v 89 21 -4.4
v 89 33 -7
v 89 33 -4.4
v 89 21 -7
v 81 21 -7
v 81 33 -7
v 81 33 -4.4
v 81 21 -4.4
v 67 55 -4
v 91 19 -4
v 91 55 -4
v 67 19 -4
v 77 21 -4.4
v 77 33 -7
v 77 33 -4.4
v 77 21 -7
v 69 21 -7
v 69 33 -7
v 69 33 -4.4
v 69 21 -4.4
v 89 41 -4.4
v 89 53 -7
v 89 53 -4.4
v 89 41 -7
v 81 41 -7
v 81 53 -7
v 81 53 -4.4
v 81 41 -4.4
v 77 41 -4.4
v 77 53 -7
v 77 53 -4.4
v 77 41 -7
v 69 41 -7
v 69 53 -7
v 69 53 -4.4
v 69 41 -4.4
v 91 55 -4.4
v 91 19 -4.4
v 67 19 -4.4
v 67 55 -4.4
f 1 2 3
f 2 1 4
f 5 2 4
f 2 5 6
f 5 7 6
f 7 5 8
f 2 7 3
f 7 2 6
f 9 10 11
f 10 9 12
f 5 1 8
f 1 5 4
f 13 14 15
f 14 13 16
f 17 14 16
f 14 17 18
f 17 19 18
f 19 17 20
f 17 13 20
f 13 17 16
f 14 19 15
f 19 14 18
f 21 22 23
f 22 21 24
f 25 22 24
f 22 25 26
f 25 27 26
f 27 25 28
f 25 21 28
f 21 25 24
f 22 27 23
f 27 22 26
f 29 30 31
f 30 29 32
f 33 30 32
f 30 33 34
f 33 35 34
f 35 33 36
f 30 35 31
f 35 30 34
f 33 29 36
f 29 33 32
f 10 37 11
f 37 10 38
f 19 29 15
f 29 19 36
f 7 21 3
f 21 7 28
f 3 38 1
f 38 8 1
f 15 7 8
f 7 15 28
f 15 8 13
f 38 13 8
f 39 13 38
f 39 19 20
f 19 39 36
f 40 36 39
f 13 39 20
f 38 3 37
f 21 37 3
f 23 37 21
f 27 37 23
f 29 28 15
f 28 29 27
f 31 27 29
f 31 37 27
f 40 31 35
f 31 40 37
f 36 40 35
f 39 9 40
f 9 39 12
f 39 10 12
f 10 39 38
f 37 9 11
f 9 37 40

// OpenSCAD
// file: controller.scad
use <util.scad>;

module switches() {
	  translate([2.5*5,2.5,0])  switch();
		translate([2.5,2.5*5,0])  switch();
		translate([2.5*5,2.5*9,0])  switch();
		translate([2.5*9,2.5*5,0])  switch();
		
		translate([2.5*12,2.5,0])  switch();
		translate([2.5*12,2.5*9,0])  switch();
}

module controller() {
	
	// 59mm across
	// 35.6 long
	
	// 2.5 between buttons
	
	x  = 40;
	y = 62;
	z = 1.60;
	translate([0, 0, -z]) {
			color("green") linear_extrude(height=z)
				difference() {
					hull() {
						translate([  3,   3]) circle(r=3);
						translate([x-3,   3]) circle(r=3);
						translate([x-3, y-3]) circle(r=3);
						translate([  3, y-3]) circle(r=3);
					}
				}
		}
	   switches();
		
		translate([0,2.5*12,0])
			switches();
		
}

module back_controller() {
	x  = 40;
	y = 62;
	z = 1.60;
	translate([0, 0, -z]) {
		color("green") linear_extrude(height=z)
			difference() {
				hull() {
					translate([  3,   3]) circle(r=3);
					translate([x-3,   3]) circle(r=3);
					translate([x-3, y-3]) circle(r=3);
					translate([  3, y-3]) circle(r=3);
				}
			}
		rotate([0,180,0]) translate([-2.5*5,2.5*7,0])  switch();
		rotate([0,180,0]) translate([-2.5*10,2.5*7,0])  switch();

		rotate([0,180,0]) translate([-2.5*5,2.5*15,0])  switch();
		rotate([0,180,0]) translate([-2.5*10,2.5*15,0])  switch();
	}

}
// file: pitft.scad
use <util.scad>;

width=56;
length=65;
pcb_height=1.65;

module tiny_switch() {
	   color("grey")
		cube([6,3.4,3.63]);
	translate([3,1.6,4.13])
	color("white")
		cube([3,1.5,1], center=true);
}

module pitft_holes() {
	$fn=32;
	translate([3.5,3.5]) circle(d=2.75);
	translate([width - 3.5,3.5]) circle(d=2.75);
	translate([3.5,length - 3.5]) circle(d=2.75);
	translate([width - 3.5,length - 3.5]) circle(d=2.75);
}

module pitft() {
	color("blue")
		translate([0, 0, -pcb_height]) 
		linear_extrude(pcb_height)
		difference() {
			hull() {
				translate([  3,   3]) circle(r=3);
				translate([width-3,   3]) circle(r=3);
				translate([  3, length-3]) circle(r=3);
				translate([width-3, length-3]) circle(r=3);
			}
			pitft_holes();

			// cutout for 26 pin GPIO
			translate([9.25,-1])
				square([38,12.5]);
			
		}
		
		
	  translate([55,10,0])
		rotate(90)
		tiny_switch();
	  
	  translate([55,20,0])
		rotate(90)
		tiny_switch();    
		 translate([55,30,0])
		rotate(90)
		tiny_switch();    
		 translate([55,40,0])
		rotate(90)
		tiny_switch();    
		 translate([55,50,0])
		rotate(90)
		tiny_switch();    
	  
	color("black")
		translate([6.0, 7.1, -pcb_height])
		rotate([0,180,0])
		cube([5, 51.2, 8.6]);
		
	 translate([12.0, 14, -2])
		rotate([0,90,270])
		header(2, 13);
		
	 color("white")
		translate([7,5,0])
		cube([42.5,60,2.75]);
	 color("black")
		translate([8,6,2.75])
		cube([40,51,0.5]);
}


pitft();
// file: pi.scad
use <util.scad>;

width=56;
length=65;
pcb_height=1.5;

module pi_holes() {
	$fn=32;
	translate([3.5,3.5]) circle(d=2.75);
	translate([width - 3.5,3.5]) circle(d=2.75);
	translate([3.5,length - 3.5]) circle(d=2.75);
	translate([width - 3.5,length - 3.5]) circle(d=2.75);
}

module pi_3_a_plus() {
    $fn=32;

    color("green")
		translate([0, 0, -pcb_height]) 
		linear_extrude(pcb_height)
		difference() {
			hull() {
				translate([  3,   3]) circle(r=3);
				translate([width-3,   3]) circle(r=3);
				translate([  3, length-3]) circle(r=3);
				translate([width-3, length-3]) circle(r=3);
			}
			pi_holes();
		}

    translate([1.0, 7.25, 0]) header(2, 20);
    translate([width,7.25,0]) rotate(90) micro_usb();
    // translate([22,length - (15 - 2.6),-2]) sdcard();
    // translate([21.5,length - (15 - 2.6),-2.5]) sdcard_reader();
    // translate([18,-2.5,0]) usb();

 		translate([22,-3.5,-2]) sdcard();
    translate([21.5,0,-2.5]) sdcard_reader();
    translate([18,length - 12,0]) usb();

    translate([46,25,0]) hdmi();
    translate([43.5,length-7,0]) rotate(270) audio();
}

pi_3_a_plus();
// file: powerboost.scad
use <util.scad>;

// https://learn.adafruit.com/adafruit-powerboost-1000c-load-share-usb-charge-boost/downloads


module powerboost() {
    $fn=32;
    width=22.86;
    length=36.2;

    pcb_height = 1.5;

    color("blue")
        translate([0,0,-pcb_height])
        linear_extrude(pcb_height)
        difference() {
            hull() {
                translate([2,2]) circle(r=2);
                translate([width-2,2]) circle(r=2);
                translate([width-2,length-2]) circle(r=2);
                translate([2,length-2]) circle(r=2);
            }
            // front holes are 2.5
            translate([2.75,2.75]) circle(d=2.5);
            translate([width-2.75,2.75]) circle(d=2.5);

            // back holes are 2.4
            translate([4.8,length-2.3]) circle(d=2.4);
            translate([width-5.4,length-2.2]) circle(d=2.4);
        }

    translate([7.5, 0, 0]) micro_usb();
    color("black")
        translate([0,8,0])
        cube([6.2,8,5.5]);
}

powerboost();
// file: back_buttons.scad
button_height = 3;

// I had extra GPIO pins on the back half and so added an extra L2 and R2

module lr_button() {
    // L1, L2, R1, R2
    cube([8,12,button_height], center=false);
}
module lr_button_cutout() {
    // how much space to carve out of the case
    translate([-0.5,-0.5,0])
        cube([9,13,5], center=false);
}

module back_buttons() {
    // All 4 buttons are identical and symmetric
    // I don't really know which is which (doesn't really matter?)

    color("blue") {
        translate([0,0,0]) lr_button();
        translate([12,0,0]) lr_button();

        translate([0,20,0]) lr_button();
        translate([12,20,0]) lr_button();
    }
    
}

back_buttons();
// file: util.scad
use <powerboost.scad>;
use <pi.scad>;
use <pitft.scad>;
use <controller.scad>;

module micro_usb() {
    color("grey")
    cube([7.7,5.5,3]);
}

micro_usb();

module header(x_max,y_max) {
    union() {
        for(x=[0:x_max-1]) {
            for(y=[0:y_max-1]) {
                translate([x*2.5,y*2.5]) {
                    color("black")
                        cube([2.5,2.5,2.5]);
                    color("gold")
                        translate([(2.5 - 0.65)/2,(2.5 - 0.65)/2,-2.5])
                        cube([0.65,0.65,11.6]);
                }
            }
        }
    }
}

translate([0,8,0])
    header(2,13);

module sdcard() {

    color("red")
        cube([11,15,0.75]);
}
translate([10,0,0])
    sdcard();

module sdcard_reader() {
    color("grey")
        cube([12,11.65,1.5]);
}
translate([9.5,-0.4,0])
    sdcard_reader();

module hdmi() {
    color("grey")
        cube([11,15,5.6]);

}

translate([30,0,0])
    hdmi();

module usb() {
    color("grey")
    cube([14,14,5.85]);

}

translate([10,20,0])
    usb();

module audio() {
    $fn=30;
    color("black")
        union() {
            cube([7,12.6,6]);
            translate([7/2,14.5,3])
                rotate([90,0,0])
                cylinder(d=6,h=2.5);
        }
}

translate([30,30,0])
    audio();

module switch() {
    color("black")
        cube([7.75,7.75,2.66]);
    $fn=10;
    // actual height is 2.75, but the buttons are squishy
    // h=2.75
    color("gray")
        translate([7.75/2,7.75/2,2.66])
        cylinder(d=3.5,h=2);
}
translate([])
    switch();


module screw() {
    // 4-40x3/8th screws
    $fn=30;
    width = 2.7;
    thread_height = 7.46;
    head_height = 2;
    head_width = 5.2;
    color("grey")
    cylinder(h=head_height, d1=width, d2=head_width, center=true);
    color("grey")
    translate([0,0,-4])
    cylinder(h=thread_height, d=width, center=true);
}


module screw_with_hole() {
    screw();
    $fn=30;
    
    translate([0,0,7.9])
    // slightly oversized screw head
    cylinder(h=15, d=5.8, center=true);
}

module screw_mount(screw_hole=true) {
    $fn=30;
    thread_height = 7.46;
    width = 2.6; // undersized
    difference() {
        cube([6,8,4], center=true);
        if (screw_hole) {
            translate([0,0,1]) cylinder(h=thread_height, d=width, center=true);
        }
    }
}

translate([50,16,2])
    screw_mount(screw_hole=false);

translate([50,4,2])
    screw_mount(screw_hole=true);

module battery() {
    color("grey")
    cube([37,60,7.24]);
}

module washer(h=3,d=5) {
    $fn=30;
    
    difference() {

        cylinder(h=h,d=d, center=true);
        translate([0,0,1])
        screw();
    }
}

module slide_switch() {
    color("grey")
      cube([4.2,11.7,6]);
    color("black")
      translate([1,3.6,6])
      cube([2,2,2]);
}

module dpad_plus(g, extrude=2, curve=true) {
    $fn=30;
    corners = 10;

    radius = 50;
    difference() {

        linear_extrude(extrude)
        difference() {
            square(24, center=true);
            translate([g,g]) square(corners, center=true);
            rotate(90) translate([g,g]) square(corners, center=true);
            rotate(180) translate([g,g]) square(corners, center=true);
            rotate(270) translate([g,g]) square(corners, center=true);

        }
        if(curve){
            translate([0,0,radius + extrude - 1])
                sphere(radius, $fn=100);
        }
    }
}

translate([70,12,0])
    dpad_plus(7.8);


module top_half() {
  translate([0,0,14])
    pitft();
}

pwr_switch_offset = [98,73,4];

module hardware_back() {
     translate([145,72,3])
         rotate(180)
         powerboost();
    translate([60,70,2])
    rotate(180)
        pi_3_a_plus(); 
    
    translate(pwr_switch_offset)
        rotate([0,90,90])
        slide_switch();

    translate([64,6,2])
        back_controller();
       
}

module hardware_front() {
 translate([60,70,14])
    rotate(180)
        pitft();
    translate([64,6,12])
       controller();

    translate([106,7,9])
         battery(); 
}

translate([50,50,0])
    pitft();

translate([0,50,0])
    controller();
// main file
use <util.scad>;
use <back_buttons.scad>;

module back_case_flex() {

    color("blue")
        translate([89,21,-4])
        rotate([0,180,0]) {

        translate([-2,-2,0]) cube([24,36,0.4], center=false);
        back_buttons();
    }
    
}

back_case_flex();
